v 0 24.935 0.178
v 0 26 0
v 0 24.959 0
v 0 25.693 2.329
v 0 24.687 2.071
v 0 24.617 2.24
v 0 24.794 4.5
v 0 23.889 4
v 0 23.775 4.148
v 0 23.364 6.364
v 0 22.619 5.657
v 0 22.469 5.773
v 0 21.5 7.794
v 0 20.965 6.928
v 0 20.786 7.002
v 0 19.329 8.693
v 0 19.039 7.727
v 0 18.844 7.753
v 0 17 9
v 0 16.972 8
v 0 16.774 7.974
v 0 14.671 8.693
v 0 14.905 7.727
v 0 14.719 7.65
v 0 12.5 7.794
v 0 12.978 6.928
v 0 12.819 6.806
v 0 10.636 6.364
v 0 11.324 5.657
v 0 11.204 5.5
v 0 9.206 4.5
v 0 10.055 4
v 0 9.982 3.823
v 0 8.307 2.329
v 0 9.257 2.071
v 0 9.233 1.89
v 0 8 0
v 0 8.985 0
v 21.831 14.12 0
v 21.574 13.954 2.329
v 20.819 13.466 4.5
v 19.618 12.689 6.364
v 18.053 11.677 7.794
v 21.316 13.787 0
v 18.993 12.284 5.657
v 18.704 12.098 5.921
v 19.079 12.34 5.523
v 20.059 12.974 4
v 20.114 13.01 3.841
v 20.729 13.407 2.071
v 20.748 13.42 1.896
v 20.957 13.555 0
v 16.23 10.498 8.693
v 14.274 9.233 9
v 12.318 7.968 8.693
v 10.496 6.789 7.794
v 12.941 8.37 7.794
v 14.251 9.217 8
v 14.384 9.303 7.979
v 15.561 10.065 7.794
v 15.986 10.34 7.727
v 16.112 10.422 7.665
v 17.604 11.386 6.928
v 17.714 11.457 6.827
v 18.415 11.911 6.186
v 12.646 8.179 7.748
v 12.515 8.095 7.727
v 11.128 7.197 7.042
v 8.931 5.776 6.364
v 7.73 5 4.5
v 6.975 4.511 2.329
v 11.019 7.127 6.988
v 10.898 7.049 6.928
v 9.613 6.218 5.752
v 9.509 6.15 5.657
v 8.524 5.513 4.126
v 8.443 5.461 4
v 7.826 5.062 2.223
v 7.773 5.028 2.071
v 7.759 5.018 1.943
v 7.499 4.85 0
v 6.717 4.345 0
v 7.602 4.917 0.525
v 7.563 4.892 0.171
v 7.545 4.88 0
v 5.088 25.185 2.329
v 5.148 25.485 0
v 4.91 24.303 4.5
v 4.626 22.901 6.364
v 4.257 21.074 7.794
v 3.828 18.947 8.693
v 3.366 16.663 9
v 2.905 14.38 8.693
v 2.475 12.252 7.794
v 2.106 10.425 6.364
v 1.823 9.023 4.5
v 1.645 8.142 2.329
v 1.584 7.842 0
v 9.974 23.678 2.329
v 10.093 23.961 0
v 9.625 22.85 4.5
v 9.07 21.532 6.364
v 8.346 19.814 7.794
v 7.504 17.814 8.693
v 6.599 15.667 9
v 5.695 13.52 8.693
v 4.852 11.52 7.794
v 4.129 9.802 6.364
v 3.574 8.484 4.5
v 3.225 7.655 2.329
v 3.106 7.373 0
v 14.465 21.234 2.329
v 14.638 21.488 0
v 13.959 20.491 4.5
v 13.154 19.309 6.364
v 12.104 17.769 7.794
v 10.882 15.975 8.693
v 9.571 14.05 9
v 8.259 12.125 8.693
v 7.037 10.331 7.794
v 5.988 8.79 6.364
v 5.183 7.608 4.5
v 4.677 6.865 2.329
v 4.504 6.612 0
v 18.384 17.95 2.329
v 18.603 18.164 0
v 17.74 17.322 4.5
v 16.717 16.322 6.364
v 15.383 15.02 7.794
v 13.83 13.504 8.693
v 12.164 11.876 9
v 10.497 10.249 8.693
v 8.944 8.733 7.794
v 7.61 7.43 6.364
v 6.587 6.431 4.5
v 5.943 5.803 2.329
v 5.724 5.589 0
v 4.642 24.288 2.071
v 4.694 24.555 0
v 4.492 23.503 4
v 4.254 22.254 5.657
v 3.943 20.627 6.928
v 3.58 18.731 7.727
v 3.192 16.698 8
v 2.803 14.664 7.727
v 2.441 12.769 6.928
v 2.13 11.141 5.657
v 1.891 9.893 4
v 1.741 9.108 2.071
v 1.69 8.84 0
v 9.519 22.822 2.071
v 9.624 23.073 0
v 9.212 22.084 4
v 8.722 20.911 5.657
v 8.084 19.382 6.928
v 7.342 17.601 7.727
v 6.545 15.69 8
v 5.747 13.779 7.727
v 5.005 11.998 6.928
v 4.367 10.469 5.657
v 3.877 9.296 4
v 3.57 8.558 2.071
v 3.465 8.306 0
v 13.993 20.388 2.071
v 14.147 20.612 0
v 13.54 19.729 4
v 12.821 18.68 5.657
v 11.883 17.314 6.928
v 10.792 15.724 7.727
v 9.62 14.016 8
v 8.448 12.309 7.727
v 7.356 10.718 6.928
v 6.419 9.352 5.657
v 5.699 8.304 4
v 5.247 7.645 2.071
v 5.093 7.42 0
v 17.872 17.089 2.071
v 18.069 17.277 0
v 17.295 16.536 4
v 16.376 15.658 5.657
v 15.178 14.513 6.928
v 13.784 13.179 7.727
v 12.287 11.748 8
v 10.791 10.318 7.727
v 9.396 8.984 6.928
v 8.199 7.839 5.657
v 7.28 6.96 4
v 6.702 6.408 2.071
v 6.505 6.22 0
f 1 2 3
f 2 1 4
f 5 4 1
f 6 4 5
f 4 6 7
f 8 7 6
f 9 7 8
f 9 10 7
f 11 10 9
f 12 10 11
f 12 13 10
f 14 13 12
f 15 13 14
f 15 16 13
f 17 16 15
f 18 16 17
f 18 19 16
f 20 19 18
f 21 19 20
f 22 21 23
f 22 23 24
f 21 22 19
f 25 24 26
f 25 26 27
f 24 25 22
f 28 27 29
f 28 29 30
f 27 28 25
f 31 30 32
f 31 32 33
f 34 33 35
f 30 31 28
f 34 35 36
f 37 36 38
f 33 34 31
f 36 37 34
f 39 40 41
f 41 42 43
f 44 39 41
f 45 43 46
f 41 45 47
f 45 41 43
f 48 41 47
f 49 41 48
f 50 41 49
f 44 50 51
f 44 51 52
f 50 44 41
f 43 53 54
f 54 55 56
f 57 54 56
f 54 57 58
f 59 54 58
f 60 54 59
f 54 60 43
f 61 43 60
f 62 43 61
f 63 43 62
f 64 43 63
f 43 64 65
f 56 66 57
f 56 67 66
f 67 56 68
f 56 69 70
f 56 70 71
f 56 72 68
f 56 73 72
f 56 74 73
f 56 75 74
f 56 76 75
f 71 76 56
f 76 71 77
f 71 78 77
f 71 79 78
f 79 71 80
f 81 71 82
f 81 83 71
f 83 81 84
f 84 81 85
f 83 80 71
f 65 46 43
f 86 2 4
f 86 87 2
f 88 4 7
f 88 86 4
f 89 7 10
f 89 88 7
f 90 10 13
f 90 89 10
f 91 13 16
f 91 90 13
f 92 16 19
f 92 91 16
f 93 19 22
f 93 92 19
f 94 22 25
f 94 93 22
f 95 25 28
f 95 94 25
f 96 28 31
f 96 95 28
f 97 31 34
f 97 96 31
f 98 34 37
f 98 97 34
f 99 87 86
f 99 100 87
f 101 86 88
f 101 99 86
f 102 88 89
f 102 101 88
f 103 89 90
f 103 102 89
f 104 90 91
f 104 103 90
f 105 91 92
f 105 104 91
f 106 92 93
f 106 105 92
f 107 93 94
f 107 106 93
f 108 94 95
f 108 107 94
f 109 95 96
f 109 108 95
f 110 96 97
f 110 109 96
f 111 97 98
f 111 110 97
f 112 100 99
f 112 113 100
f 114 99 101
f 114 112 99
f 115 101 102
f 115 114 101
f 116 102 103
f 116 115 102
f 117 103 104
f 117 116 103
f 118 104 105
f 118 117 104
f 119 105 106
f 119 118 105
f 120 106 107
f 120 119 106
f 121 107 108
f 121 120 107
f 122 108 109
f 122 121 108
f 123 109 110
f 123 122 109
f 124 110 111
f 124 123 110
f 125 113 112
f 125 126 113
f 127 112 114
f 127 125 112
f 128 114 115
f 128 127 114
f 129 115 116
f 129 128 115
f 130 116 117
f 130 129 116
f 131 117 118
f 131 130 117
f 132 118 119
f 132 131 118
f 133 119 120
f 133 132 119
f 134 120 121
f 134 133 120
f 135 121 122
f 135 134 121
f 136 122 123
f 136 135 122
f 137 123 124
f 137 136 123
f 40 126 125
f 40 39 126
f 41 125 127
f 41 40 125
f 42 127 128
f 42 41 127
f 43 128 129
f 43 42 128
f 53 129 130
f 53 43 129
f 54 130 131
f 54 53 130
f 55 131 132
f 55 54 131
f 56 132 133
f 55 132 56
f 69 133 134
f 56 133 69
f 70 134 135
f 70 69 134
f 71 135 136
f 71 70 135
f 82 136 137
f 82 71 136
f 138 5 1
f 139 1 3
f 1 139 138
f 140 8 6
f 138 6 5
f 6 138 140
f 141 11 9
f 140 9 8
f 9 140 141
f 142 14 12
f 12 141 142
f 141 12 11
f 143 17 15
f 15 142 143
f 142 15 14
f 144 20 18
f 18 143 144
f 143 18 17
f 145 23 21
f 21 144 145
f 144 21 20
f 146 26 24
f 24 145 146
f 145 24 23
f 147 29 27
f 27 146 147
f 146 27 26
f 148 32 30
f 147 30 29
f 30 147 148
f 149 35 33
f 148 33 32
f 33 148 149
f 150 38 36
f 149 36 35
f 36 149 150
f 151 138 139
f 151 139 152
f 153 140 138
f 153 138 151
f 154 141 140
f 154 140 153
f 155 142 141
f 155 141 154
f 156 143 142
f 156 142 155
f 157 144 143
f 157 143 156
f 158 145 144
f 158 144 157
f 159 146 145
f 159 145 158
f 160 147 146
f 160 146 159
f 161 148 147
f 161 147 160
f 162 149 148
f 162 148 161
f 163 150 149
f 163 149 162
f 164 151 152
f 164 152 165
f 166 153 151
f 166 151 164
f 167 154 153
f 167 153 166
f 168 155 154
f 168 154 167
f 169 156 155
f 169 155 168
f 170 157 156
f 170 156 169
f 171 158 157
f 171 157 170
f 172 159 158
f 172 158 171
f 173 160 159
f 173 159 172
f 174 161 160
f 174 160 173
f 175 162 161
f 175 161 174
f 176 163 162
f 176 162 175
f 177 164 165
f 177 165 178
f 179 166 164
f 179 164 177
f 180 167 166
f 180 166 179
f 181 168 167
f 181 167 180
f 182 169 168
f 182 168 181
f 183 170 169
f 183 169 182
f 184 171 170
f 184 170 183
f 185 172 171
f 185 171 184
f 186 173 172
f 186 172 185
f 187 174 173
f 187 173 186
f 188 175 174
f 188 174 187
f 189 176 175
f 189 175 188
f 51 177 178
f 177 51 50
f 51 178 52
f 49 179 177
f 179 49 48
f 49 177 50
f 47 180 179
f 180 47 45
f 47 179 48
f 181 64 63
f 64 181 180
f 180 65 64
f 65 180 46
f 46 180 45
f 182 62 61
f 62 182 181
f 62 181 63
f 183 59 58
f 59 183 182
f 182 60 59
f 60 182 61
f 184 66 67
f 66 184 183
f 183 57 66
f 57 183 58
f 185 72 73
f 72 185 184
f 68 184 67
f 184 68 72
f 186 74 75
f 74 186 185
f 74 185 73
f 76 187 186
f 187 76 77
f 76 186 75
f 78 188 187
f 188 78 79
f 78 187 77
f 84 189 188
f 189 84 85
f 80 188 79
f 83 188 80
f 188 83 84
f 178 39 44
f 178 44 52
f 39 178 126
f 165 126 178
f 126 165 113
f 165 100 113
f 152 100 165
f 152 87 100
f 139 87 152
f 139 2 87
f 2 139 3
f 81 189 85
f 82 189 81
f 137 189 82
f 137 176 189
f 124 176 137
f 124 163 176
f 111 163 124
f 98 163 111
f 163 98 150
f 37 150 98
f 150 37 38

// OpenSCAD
// file: ../build_environments.scad
// build_environments.scad: modules to build level sections
//

module pool(diameter=10.0, wall_height=2.0, step_width=3.0, connections=[])
{
    difference() {
        union() {
        difference() {
            cylinder(h=0.5,r1=diameter+step_width,r2=diameter+step_width,$fn=48);
            translate([0,0,-0.1])
                cylinder(h=0.7,r1=diameter,r2=diameter,$fn=48);
        }
        difference() {
            cylinder(h=wall_height,r1=diameter+step_width+1.0,r2=diameter+step_width+1.0,$fn=48);
            translate([0,0,-0.1])
                cylinder(h=wall_height+0.2,r1=diameter+step_width,r2=diameter+step_width,$fn=48);
        }
        }
    
        for (c = connections)
        {
            rotate([0,90,0]) {
                angle = atan2(c[1],c[0]);
                rotate([-angle,0,0]) {
                    cylinder(h=diameter+5.0,r1=c[2],r2=c[2],$fn=48);
                }
            }
        }
    }
}

module straight(length=10.0, width=2.0, dy1=0.0, dy2=0.0, dz=0.0)
{
    dims = [0, 0, 0, 0, 0, (dz/length)];
    matrix = [
        [ 1, dims[0], dims[1], 0 ],
        [ dims[2], 1, dims[4], 0 ],
        [ dims[5], dims[3], 1, 0 ],
        [ 0, 0, 0, 1 ]
    ];
    multmatrix(matrix)
    difference() {
        translate([dy1,0,0])
        union() {
            rotate([0,90,0]) {
                difference() {
                    cylinder(h=(length-dy1-dy2),r1=width+1.0,r2=width+1.0,$fn=24);
                    translate([0,0,-0.1])
                        cylinder(h=(length-dy1-dy2+0.2),r1=width,r2=width,$fn=24);
                }
                difference() {
                    cylinder(h=1.0,r1=width+2.0,r2=width+2.0,$fn=24);
                    translate([0,0,-0.1])
                        cylinder(h=1.2,r1=width,r2=width,$fn=24);
                }
                translate([0,0,(length-dy1-dy2)-1.0]) {
                    difference() {
                        cylinder(h=1.0,r1=width+2.0,r2=width+2.0,$fn=24);
                        translate([0,0,-0.1])
                            cylinder(h=1.2,r1=width,r2=width,$fn=24);
                    }
                }
            }
        }
        translate([0,0,-(2*width+4.0)/2])
            cube([3*length,3*length,2*width+4.0],center=true);
    }
}

module curve(p0=[0,0], center=[0,0], dir=1, angle=0.0, width=2.0)
{
    radius = sqrt((p0[0]-center[0])*(p0[0]-center[0]) + (p0[1]-center[1])*(p0[1]-center[1]));
    if (dir == 0) {
        difference() {
            rotate([0,0,-90])
            difference() {
                rotate_extrude(angle = angle, convexity = 10, $fn=32)
                    translate([radius, 0, 0])
                        circle(r = width+1.0,$fn=24);
                rotate([0,0,-1.0])
                    rotate_extrude(angle = angle+2.0, convexity = 10, $fn=32)
                        translate([radius, 0, 0])
                            circle(r = width,$fn=24);
            }
            translate([0,0,-(2*width+4.0)/2])
                cube([5*radius,5*radius,2*width+4.0],center=true);
        }
    }
    else {
        difference() {
            rotate([0,0,90])
            difference() {
                rotate_extrude(angle = -angle, convexity = 10, $fn=32)
                    translate([radius, 0, 0])
                        circle(r = width+1.0,$fn=24);
                rotate([0,0,1.0])
                    rotate_extrude(angle = -angle-2.0, convexity = 10, $fn=32)
                        translate([radius, 0, 0])
                            circle(r = width,$fn=24);
            }
            translate([0,0,-(2*width+4.0)/2])
                cube([5*radius,5*radius,2*width+4.0],center=true);
        }
    }

}

// test pool
//pool(diameter=12.0000, wall_height=3.0000, step_width=3.0000, connections=[[0.0000,-26.0000,2.0000], [23.6074,0.0000,2.0000]]);

// test straight, slope
//straight(length=26.0000, width=2.0000, dy1=11.8322, dy2=6.7082, dz=0.0000);
//straight(length=29.1549, width=12.0000, dy1=0.0000, dy2=0.0000, dz=-15.0000);

// test curve
//curve(p0=[23.6074, 0.0000], center=[23.6074, 5.0000], dir=0, angle=60.1011, width=2.0000);
//curve(p0=[33.6426, 12.4219], center=[37.9771, 9.9295], dir=1, angle=120.4627, width=2.0000);
// main file
use <../build_environments.scad>;
curve(p0=[41.1059, 102.6531], center=[24.1557, 103.9532], dir=1, angle=57.1053, width=8.0000);
